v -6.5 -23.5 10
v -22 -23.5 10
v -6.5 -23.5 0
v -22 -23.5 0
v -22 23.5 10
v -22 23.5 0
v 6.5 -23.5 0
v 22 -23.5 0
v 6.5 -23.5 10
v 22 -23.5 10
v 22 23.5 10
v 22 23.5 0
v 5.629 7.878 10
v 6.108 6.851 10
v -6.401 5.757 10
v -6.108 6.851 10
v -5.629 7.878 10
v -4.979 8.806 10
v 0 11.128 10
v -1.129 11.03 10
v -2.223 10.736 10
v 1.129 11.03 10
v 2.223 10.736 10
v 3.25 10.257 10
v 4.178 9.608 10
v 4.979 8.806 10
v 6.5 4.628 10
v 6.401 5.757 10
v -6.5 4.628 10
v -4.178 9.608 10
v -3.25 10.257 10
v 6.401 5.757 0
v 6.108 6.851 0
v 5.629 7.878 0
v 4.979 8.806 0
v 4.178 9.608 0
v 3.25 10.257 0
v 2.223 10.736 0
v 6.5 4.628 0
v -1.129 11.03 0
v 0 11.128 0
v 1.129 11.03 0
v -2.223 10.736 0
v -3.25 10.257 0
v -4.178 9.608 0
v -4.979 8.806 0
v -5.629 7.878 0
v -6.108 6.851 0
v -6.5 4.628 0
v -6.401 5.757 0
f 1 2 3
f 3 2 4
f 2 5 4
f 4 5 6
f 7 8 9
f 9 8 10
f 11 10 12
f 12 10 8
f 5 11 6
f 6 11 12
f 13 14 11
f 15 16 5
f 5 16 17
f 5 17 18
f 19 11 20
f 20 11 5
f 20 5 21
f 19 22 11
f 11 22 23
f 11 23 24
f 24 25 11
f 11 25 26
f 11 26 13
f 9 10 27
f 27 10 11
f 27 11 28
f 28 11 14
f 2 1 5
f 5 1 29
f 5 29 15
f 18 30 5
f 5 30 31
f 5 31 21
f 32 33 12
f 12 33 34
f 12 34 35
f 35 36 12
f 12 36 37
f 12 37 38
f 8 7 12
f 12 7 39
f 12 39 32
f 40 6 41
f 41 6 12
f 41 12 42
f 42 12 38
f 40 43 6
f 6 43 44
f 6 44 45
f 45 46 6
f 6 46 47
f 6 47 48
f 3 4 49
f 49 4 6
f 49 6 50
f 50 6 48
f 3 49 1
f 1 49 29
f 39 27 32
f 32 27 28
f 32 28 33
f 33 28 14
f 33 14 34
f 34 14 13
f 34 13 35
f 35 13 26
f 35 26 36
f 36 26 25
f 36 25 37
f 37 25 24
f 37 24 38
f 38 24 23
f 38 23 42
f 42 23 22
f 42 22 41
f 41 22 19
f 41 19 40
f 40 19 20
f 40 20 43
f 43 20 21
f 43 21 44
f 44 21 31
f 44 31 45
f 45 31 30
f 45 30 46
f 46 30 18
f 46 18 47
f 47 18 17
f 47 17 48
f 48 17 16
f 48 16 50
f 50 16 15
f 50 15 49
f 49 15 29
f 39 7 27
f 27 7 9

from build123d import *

# Parameters (mm, degrees)
SKETCH2_W           = 44
SKETCH2_H           = 47
BOSS_EXTRUDE1_DEPTH = 10
CUT_EXTRUDE1_DEPTH  = 10


with BuildPart() as part:
    # Sketch2 → Boss-Extrude1 (new body)
    with BuildSketch(Plane.XY):
        Rectangle(SKETCH2_W, SKETCH2_H)
    extrude(amount=BOSS_EXTRUDE1_DEPTH)

    # Sketch3 → Cut-Extrude1 (cut)
    with BuildSketch(Plane.XY.offset(10)):
        with BuildLine():
            Line((-6.5, -23.5), (-6.5, 4.628280517))
            ThreePointArc((-6.5, 4.628280517), (0, 11.128280517), (6.5, 4.628280517))
            Line((6.5, 4.628280517), (6.5, -23.5))
            ThreePointArc((6.5, -23.5), (0, -30), (-6.5, -23.5))
        make_face()
    extrude(amount=-CUT_EXTRUDE1_DEPTH, mode=Mode.SUBTRACT)


solid = part.part
